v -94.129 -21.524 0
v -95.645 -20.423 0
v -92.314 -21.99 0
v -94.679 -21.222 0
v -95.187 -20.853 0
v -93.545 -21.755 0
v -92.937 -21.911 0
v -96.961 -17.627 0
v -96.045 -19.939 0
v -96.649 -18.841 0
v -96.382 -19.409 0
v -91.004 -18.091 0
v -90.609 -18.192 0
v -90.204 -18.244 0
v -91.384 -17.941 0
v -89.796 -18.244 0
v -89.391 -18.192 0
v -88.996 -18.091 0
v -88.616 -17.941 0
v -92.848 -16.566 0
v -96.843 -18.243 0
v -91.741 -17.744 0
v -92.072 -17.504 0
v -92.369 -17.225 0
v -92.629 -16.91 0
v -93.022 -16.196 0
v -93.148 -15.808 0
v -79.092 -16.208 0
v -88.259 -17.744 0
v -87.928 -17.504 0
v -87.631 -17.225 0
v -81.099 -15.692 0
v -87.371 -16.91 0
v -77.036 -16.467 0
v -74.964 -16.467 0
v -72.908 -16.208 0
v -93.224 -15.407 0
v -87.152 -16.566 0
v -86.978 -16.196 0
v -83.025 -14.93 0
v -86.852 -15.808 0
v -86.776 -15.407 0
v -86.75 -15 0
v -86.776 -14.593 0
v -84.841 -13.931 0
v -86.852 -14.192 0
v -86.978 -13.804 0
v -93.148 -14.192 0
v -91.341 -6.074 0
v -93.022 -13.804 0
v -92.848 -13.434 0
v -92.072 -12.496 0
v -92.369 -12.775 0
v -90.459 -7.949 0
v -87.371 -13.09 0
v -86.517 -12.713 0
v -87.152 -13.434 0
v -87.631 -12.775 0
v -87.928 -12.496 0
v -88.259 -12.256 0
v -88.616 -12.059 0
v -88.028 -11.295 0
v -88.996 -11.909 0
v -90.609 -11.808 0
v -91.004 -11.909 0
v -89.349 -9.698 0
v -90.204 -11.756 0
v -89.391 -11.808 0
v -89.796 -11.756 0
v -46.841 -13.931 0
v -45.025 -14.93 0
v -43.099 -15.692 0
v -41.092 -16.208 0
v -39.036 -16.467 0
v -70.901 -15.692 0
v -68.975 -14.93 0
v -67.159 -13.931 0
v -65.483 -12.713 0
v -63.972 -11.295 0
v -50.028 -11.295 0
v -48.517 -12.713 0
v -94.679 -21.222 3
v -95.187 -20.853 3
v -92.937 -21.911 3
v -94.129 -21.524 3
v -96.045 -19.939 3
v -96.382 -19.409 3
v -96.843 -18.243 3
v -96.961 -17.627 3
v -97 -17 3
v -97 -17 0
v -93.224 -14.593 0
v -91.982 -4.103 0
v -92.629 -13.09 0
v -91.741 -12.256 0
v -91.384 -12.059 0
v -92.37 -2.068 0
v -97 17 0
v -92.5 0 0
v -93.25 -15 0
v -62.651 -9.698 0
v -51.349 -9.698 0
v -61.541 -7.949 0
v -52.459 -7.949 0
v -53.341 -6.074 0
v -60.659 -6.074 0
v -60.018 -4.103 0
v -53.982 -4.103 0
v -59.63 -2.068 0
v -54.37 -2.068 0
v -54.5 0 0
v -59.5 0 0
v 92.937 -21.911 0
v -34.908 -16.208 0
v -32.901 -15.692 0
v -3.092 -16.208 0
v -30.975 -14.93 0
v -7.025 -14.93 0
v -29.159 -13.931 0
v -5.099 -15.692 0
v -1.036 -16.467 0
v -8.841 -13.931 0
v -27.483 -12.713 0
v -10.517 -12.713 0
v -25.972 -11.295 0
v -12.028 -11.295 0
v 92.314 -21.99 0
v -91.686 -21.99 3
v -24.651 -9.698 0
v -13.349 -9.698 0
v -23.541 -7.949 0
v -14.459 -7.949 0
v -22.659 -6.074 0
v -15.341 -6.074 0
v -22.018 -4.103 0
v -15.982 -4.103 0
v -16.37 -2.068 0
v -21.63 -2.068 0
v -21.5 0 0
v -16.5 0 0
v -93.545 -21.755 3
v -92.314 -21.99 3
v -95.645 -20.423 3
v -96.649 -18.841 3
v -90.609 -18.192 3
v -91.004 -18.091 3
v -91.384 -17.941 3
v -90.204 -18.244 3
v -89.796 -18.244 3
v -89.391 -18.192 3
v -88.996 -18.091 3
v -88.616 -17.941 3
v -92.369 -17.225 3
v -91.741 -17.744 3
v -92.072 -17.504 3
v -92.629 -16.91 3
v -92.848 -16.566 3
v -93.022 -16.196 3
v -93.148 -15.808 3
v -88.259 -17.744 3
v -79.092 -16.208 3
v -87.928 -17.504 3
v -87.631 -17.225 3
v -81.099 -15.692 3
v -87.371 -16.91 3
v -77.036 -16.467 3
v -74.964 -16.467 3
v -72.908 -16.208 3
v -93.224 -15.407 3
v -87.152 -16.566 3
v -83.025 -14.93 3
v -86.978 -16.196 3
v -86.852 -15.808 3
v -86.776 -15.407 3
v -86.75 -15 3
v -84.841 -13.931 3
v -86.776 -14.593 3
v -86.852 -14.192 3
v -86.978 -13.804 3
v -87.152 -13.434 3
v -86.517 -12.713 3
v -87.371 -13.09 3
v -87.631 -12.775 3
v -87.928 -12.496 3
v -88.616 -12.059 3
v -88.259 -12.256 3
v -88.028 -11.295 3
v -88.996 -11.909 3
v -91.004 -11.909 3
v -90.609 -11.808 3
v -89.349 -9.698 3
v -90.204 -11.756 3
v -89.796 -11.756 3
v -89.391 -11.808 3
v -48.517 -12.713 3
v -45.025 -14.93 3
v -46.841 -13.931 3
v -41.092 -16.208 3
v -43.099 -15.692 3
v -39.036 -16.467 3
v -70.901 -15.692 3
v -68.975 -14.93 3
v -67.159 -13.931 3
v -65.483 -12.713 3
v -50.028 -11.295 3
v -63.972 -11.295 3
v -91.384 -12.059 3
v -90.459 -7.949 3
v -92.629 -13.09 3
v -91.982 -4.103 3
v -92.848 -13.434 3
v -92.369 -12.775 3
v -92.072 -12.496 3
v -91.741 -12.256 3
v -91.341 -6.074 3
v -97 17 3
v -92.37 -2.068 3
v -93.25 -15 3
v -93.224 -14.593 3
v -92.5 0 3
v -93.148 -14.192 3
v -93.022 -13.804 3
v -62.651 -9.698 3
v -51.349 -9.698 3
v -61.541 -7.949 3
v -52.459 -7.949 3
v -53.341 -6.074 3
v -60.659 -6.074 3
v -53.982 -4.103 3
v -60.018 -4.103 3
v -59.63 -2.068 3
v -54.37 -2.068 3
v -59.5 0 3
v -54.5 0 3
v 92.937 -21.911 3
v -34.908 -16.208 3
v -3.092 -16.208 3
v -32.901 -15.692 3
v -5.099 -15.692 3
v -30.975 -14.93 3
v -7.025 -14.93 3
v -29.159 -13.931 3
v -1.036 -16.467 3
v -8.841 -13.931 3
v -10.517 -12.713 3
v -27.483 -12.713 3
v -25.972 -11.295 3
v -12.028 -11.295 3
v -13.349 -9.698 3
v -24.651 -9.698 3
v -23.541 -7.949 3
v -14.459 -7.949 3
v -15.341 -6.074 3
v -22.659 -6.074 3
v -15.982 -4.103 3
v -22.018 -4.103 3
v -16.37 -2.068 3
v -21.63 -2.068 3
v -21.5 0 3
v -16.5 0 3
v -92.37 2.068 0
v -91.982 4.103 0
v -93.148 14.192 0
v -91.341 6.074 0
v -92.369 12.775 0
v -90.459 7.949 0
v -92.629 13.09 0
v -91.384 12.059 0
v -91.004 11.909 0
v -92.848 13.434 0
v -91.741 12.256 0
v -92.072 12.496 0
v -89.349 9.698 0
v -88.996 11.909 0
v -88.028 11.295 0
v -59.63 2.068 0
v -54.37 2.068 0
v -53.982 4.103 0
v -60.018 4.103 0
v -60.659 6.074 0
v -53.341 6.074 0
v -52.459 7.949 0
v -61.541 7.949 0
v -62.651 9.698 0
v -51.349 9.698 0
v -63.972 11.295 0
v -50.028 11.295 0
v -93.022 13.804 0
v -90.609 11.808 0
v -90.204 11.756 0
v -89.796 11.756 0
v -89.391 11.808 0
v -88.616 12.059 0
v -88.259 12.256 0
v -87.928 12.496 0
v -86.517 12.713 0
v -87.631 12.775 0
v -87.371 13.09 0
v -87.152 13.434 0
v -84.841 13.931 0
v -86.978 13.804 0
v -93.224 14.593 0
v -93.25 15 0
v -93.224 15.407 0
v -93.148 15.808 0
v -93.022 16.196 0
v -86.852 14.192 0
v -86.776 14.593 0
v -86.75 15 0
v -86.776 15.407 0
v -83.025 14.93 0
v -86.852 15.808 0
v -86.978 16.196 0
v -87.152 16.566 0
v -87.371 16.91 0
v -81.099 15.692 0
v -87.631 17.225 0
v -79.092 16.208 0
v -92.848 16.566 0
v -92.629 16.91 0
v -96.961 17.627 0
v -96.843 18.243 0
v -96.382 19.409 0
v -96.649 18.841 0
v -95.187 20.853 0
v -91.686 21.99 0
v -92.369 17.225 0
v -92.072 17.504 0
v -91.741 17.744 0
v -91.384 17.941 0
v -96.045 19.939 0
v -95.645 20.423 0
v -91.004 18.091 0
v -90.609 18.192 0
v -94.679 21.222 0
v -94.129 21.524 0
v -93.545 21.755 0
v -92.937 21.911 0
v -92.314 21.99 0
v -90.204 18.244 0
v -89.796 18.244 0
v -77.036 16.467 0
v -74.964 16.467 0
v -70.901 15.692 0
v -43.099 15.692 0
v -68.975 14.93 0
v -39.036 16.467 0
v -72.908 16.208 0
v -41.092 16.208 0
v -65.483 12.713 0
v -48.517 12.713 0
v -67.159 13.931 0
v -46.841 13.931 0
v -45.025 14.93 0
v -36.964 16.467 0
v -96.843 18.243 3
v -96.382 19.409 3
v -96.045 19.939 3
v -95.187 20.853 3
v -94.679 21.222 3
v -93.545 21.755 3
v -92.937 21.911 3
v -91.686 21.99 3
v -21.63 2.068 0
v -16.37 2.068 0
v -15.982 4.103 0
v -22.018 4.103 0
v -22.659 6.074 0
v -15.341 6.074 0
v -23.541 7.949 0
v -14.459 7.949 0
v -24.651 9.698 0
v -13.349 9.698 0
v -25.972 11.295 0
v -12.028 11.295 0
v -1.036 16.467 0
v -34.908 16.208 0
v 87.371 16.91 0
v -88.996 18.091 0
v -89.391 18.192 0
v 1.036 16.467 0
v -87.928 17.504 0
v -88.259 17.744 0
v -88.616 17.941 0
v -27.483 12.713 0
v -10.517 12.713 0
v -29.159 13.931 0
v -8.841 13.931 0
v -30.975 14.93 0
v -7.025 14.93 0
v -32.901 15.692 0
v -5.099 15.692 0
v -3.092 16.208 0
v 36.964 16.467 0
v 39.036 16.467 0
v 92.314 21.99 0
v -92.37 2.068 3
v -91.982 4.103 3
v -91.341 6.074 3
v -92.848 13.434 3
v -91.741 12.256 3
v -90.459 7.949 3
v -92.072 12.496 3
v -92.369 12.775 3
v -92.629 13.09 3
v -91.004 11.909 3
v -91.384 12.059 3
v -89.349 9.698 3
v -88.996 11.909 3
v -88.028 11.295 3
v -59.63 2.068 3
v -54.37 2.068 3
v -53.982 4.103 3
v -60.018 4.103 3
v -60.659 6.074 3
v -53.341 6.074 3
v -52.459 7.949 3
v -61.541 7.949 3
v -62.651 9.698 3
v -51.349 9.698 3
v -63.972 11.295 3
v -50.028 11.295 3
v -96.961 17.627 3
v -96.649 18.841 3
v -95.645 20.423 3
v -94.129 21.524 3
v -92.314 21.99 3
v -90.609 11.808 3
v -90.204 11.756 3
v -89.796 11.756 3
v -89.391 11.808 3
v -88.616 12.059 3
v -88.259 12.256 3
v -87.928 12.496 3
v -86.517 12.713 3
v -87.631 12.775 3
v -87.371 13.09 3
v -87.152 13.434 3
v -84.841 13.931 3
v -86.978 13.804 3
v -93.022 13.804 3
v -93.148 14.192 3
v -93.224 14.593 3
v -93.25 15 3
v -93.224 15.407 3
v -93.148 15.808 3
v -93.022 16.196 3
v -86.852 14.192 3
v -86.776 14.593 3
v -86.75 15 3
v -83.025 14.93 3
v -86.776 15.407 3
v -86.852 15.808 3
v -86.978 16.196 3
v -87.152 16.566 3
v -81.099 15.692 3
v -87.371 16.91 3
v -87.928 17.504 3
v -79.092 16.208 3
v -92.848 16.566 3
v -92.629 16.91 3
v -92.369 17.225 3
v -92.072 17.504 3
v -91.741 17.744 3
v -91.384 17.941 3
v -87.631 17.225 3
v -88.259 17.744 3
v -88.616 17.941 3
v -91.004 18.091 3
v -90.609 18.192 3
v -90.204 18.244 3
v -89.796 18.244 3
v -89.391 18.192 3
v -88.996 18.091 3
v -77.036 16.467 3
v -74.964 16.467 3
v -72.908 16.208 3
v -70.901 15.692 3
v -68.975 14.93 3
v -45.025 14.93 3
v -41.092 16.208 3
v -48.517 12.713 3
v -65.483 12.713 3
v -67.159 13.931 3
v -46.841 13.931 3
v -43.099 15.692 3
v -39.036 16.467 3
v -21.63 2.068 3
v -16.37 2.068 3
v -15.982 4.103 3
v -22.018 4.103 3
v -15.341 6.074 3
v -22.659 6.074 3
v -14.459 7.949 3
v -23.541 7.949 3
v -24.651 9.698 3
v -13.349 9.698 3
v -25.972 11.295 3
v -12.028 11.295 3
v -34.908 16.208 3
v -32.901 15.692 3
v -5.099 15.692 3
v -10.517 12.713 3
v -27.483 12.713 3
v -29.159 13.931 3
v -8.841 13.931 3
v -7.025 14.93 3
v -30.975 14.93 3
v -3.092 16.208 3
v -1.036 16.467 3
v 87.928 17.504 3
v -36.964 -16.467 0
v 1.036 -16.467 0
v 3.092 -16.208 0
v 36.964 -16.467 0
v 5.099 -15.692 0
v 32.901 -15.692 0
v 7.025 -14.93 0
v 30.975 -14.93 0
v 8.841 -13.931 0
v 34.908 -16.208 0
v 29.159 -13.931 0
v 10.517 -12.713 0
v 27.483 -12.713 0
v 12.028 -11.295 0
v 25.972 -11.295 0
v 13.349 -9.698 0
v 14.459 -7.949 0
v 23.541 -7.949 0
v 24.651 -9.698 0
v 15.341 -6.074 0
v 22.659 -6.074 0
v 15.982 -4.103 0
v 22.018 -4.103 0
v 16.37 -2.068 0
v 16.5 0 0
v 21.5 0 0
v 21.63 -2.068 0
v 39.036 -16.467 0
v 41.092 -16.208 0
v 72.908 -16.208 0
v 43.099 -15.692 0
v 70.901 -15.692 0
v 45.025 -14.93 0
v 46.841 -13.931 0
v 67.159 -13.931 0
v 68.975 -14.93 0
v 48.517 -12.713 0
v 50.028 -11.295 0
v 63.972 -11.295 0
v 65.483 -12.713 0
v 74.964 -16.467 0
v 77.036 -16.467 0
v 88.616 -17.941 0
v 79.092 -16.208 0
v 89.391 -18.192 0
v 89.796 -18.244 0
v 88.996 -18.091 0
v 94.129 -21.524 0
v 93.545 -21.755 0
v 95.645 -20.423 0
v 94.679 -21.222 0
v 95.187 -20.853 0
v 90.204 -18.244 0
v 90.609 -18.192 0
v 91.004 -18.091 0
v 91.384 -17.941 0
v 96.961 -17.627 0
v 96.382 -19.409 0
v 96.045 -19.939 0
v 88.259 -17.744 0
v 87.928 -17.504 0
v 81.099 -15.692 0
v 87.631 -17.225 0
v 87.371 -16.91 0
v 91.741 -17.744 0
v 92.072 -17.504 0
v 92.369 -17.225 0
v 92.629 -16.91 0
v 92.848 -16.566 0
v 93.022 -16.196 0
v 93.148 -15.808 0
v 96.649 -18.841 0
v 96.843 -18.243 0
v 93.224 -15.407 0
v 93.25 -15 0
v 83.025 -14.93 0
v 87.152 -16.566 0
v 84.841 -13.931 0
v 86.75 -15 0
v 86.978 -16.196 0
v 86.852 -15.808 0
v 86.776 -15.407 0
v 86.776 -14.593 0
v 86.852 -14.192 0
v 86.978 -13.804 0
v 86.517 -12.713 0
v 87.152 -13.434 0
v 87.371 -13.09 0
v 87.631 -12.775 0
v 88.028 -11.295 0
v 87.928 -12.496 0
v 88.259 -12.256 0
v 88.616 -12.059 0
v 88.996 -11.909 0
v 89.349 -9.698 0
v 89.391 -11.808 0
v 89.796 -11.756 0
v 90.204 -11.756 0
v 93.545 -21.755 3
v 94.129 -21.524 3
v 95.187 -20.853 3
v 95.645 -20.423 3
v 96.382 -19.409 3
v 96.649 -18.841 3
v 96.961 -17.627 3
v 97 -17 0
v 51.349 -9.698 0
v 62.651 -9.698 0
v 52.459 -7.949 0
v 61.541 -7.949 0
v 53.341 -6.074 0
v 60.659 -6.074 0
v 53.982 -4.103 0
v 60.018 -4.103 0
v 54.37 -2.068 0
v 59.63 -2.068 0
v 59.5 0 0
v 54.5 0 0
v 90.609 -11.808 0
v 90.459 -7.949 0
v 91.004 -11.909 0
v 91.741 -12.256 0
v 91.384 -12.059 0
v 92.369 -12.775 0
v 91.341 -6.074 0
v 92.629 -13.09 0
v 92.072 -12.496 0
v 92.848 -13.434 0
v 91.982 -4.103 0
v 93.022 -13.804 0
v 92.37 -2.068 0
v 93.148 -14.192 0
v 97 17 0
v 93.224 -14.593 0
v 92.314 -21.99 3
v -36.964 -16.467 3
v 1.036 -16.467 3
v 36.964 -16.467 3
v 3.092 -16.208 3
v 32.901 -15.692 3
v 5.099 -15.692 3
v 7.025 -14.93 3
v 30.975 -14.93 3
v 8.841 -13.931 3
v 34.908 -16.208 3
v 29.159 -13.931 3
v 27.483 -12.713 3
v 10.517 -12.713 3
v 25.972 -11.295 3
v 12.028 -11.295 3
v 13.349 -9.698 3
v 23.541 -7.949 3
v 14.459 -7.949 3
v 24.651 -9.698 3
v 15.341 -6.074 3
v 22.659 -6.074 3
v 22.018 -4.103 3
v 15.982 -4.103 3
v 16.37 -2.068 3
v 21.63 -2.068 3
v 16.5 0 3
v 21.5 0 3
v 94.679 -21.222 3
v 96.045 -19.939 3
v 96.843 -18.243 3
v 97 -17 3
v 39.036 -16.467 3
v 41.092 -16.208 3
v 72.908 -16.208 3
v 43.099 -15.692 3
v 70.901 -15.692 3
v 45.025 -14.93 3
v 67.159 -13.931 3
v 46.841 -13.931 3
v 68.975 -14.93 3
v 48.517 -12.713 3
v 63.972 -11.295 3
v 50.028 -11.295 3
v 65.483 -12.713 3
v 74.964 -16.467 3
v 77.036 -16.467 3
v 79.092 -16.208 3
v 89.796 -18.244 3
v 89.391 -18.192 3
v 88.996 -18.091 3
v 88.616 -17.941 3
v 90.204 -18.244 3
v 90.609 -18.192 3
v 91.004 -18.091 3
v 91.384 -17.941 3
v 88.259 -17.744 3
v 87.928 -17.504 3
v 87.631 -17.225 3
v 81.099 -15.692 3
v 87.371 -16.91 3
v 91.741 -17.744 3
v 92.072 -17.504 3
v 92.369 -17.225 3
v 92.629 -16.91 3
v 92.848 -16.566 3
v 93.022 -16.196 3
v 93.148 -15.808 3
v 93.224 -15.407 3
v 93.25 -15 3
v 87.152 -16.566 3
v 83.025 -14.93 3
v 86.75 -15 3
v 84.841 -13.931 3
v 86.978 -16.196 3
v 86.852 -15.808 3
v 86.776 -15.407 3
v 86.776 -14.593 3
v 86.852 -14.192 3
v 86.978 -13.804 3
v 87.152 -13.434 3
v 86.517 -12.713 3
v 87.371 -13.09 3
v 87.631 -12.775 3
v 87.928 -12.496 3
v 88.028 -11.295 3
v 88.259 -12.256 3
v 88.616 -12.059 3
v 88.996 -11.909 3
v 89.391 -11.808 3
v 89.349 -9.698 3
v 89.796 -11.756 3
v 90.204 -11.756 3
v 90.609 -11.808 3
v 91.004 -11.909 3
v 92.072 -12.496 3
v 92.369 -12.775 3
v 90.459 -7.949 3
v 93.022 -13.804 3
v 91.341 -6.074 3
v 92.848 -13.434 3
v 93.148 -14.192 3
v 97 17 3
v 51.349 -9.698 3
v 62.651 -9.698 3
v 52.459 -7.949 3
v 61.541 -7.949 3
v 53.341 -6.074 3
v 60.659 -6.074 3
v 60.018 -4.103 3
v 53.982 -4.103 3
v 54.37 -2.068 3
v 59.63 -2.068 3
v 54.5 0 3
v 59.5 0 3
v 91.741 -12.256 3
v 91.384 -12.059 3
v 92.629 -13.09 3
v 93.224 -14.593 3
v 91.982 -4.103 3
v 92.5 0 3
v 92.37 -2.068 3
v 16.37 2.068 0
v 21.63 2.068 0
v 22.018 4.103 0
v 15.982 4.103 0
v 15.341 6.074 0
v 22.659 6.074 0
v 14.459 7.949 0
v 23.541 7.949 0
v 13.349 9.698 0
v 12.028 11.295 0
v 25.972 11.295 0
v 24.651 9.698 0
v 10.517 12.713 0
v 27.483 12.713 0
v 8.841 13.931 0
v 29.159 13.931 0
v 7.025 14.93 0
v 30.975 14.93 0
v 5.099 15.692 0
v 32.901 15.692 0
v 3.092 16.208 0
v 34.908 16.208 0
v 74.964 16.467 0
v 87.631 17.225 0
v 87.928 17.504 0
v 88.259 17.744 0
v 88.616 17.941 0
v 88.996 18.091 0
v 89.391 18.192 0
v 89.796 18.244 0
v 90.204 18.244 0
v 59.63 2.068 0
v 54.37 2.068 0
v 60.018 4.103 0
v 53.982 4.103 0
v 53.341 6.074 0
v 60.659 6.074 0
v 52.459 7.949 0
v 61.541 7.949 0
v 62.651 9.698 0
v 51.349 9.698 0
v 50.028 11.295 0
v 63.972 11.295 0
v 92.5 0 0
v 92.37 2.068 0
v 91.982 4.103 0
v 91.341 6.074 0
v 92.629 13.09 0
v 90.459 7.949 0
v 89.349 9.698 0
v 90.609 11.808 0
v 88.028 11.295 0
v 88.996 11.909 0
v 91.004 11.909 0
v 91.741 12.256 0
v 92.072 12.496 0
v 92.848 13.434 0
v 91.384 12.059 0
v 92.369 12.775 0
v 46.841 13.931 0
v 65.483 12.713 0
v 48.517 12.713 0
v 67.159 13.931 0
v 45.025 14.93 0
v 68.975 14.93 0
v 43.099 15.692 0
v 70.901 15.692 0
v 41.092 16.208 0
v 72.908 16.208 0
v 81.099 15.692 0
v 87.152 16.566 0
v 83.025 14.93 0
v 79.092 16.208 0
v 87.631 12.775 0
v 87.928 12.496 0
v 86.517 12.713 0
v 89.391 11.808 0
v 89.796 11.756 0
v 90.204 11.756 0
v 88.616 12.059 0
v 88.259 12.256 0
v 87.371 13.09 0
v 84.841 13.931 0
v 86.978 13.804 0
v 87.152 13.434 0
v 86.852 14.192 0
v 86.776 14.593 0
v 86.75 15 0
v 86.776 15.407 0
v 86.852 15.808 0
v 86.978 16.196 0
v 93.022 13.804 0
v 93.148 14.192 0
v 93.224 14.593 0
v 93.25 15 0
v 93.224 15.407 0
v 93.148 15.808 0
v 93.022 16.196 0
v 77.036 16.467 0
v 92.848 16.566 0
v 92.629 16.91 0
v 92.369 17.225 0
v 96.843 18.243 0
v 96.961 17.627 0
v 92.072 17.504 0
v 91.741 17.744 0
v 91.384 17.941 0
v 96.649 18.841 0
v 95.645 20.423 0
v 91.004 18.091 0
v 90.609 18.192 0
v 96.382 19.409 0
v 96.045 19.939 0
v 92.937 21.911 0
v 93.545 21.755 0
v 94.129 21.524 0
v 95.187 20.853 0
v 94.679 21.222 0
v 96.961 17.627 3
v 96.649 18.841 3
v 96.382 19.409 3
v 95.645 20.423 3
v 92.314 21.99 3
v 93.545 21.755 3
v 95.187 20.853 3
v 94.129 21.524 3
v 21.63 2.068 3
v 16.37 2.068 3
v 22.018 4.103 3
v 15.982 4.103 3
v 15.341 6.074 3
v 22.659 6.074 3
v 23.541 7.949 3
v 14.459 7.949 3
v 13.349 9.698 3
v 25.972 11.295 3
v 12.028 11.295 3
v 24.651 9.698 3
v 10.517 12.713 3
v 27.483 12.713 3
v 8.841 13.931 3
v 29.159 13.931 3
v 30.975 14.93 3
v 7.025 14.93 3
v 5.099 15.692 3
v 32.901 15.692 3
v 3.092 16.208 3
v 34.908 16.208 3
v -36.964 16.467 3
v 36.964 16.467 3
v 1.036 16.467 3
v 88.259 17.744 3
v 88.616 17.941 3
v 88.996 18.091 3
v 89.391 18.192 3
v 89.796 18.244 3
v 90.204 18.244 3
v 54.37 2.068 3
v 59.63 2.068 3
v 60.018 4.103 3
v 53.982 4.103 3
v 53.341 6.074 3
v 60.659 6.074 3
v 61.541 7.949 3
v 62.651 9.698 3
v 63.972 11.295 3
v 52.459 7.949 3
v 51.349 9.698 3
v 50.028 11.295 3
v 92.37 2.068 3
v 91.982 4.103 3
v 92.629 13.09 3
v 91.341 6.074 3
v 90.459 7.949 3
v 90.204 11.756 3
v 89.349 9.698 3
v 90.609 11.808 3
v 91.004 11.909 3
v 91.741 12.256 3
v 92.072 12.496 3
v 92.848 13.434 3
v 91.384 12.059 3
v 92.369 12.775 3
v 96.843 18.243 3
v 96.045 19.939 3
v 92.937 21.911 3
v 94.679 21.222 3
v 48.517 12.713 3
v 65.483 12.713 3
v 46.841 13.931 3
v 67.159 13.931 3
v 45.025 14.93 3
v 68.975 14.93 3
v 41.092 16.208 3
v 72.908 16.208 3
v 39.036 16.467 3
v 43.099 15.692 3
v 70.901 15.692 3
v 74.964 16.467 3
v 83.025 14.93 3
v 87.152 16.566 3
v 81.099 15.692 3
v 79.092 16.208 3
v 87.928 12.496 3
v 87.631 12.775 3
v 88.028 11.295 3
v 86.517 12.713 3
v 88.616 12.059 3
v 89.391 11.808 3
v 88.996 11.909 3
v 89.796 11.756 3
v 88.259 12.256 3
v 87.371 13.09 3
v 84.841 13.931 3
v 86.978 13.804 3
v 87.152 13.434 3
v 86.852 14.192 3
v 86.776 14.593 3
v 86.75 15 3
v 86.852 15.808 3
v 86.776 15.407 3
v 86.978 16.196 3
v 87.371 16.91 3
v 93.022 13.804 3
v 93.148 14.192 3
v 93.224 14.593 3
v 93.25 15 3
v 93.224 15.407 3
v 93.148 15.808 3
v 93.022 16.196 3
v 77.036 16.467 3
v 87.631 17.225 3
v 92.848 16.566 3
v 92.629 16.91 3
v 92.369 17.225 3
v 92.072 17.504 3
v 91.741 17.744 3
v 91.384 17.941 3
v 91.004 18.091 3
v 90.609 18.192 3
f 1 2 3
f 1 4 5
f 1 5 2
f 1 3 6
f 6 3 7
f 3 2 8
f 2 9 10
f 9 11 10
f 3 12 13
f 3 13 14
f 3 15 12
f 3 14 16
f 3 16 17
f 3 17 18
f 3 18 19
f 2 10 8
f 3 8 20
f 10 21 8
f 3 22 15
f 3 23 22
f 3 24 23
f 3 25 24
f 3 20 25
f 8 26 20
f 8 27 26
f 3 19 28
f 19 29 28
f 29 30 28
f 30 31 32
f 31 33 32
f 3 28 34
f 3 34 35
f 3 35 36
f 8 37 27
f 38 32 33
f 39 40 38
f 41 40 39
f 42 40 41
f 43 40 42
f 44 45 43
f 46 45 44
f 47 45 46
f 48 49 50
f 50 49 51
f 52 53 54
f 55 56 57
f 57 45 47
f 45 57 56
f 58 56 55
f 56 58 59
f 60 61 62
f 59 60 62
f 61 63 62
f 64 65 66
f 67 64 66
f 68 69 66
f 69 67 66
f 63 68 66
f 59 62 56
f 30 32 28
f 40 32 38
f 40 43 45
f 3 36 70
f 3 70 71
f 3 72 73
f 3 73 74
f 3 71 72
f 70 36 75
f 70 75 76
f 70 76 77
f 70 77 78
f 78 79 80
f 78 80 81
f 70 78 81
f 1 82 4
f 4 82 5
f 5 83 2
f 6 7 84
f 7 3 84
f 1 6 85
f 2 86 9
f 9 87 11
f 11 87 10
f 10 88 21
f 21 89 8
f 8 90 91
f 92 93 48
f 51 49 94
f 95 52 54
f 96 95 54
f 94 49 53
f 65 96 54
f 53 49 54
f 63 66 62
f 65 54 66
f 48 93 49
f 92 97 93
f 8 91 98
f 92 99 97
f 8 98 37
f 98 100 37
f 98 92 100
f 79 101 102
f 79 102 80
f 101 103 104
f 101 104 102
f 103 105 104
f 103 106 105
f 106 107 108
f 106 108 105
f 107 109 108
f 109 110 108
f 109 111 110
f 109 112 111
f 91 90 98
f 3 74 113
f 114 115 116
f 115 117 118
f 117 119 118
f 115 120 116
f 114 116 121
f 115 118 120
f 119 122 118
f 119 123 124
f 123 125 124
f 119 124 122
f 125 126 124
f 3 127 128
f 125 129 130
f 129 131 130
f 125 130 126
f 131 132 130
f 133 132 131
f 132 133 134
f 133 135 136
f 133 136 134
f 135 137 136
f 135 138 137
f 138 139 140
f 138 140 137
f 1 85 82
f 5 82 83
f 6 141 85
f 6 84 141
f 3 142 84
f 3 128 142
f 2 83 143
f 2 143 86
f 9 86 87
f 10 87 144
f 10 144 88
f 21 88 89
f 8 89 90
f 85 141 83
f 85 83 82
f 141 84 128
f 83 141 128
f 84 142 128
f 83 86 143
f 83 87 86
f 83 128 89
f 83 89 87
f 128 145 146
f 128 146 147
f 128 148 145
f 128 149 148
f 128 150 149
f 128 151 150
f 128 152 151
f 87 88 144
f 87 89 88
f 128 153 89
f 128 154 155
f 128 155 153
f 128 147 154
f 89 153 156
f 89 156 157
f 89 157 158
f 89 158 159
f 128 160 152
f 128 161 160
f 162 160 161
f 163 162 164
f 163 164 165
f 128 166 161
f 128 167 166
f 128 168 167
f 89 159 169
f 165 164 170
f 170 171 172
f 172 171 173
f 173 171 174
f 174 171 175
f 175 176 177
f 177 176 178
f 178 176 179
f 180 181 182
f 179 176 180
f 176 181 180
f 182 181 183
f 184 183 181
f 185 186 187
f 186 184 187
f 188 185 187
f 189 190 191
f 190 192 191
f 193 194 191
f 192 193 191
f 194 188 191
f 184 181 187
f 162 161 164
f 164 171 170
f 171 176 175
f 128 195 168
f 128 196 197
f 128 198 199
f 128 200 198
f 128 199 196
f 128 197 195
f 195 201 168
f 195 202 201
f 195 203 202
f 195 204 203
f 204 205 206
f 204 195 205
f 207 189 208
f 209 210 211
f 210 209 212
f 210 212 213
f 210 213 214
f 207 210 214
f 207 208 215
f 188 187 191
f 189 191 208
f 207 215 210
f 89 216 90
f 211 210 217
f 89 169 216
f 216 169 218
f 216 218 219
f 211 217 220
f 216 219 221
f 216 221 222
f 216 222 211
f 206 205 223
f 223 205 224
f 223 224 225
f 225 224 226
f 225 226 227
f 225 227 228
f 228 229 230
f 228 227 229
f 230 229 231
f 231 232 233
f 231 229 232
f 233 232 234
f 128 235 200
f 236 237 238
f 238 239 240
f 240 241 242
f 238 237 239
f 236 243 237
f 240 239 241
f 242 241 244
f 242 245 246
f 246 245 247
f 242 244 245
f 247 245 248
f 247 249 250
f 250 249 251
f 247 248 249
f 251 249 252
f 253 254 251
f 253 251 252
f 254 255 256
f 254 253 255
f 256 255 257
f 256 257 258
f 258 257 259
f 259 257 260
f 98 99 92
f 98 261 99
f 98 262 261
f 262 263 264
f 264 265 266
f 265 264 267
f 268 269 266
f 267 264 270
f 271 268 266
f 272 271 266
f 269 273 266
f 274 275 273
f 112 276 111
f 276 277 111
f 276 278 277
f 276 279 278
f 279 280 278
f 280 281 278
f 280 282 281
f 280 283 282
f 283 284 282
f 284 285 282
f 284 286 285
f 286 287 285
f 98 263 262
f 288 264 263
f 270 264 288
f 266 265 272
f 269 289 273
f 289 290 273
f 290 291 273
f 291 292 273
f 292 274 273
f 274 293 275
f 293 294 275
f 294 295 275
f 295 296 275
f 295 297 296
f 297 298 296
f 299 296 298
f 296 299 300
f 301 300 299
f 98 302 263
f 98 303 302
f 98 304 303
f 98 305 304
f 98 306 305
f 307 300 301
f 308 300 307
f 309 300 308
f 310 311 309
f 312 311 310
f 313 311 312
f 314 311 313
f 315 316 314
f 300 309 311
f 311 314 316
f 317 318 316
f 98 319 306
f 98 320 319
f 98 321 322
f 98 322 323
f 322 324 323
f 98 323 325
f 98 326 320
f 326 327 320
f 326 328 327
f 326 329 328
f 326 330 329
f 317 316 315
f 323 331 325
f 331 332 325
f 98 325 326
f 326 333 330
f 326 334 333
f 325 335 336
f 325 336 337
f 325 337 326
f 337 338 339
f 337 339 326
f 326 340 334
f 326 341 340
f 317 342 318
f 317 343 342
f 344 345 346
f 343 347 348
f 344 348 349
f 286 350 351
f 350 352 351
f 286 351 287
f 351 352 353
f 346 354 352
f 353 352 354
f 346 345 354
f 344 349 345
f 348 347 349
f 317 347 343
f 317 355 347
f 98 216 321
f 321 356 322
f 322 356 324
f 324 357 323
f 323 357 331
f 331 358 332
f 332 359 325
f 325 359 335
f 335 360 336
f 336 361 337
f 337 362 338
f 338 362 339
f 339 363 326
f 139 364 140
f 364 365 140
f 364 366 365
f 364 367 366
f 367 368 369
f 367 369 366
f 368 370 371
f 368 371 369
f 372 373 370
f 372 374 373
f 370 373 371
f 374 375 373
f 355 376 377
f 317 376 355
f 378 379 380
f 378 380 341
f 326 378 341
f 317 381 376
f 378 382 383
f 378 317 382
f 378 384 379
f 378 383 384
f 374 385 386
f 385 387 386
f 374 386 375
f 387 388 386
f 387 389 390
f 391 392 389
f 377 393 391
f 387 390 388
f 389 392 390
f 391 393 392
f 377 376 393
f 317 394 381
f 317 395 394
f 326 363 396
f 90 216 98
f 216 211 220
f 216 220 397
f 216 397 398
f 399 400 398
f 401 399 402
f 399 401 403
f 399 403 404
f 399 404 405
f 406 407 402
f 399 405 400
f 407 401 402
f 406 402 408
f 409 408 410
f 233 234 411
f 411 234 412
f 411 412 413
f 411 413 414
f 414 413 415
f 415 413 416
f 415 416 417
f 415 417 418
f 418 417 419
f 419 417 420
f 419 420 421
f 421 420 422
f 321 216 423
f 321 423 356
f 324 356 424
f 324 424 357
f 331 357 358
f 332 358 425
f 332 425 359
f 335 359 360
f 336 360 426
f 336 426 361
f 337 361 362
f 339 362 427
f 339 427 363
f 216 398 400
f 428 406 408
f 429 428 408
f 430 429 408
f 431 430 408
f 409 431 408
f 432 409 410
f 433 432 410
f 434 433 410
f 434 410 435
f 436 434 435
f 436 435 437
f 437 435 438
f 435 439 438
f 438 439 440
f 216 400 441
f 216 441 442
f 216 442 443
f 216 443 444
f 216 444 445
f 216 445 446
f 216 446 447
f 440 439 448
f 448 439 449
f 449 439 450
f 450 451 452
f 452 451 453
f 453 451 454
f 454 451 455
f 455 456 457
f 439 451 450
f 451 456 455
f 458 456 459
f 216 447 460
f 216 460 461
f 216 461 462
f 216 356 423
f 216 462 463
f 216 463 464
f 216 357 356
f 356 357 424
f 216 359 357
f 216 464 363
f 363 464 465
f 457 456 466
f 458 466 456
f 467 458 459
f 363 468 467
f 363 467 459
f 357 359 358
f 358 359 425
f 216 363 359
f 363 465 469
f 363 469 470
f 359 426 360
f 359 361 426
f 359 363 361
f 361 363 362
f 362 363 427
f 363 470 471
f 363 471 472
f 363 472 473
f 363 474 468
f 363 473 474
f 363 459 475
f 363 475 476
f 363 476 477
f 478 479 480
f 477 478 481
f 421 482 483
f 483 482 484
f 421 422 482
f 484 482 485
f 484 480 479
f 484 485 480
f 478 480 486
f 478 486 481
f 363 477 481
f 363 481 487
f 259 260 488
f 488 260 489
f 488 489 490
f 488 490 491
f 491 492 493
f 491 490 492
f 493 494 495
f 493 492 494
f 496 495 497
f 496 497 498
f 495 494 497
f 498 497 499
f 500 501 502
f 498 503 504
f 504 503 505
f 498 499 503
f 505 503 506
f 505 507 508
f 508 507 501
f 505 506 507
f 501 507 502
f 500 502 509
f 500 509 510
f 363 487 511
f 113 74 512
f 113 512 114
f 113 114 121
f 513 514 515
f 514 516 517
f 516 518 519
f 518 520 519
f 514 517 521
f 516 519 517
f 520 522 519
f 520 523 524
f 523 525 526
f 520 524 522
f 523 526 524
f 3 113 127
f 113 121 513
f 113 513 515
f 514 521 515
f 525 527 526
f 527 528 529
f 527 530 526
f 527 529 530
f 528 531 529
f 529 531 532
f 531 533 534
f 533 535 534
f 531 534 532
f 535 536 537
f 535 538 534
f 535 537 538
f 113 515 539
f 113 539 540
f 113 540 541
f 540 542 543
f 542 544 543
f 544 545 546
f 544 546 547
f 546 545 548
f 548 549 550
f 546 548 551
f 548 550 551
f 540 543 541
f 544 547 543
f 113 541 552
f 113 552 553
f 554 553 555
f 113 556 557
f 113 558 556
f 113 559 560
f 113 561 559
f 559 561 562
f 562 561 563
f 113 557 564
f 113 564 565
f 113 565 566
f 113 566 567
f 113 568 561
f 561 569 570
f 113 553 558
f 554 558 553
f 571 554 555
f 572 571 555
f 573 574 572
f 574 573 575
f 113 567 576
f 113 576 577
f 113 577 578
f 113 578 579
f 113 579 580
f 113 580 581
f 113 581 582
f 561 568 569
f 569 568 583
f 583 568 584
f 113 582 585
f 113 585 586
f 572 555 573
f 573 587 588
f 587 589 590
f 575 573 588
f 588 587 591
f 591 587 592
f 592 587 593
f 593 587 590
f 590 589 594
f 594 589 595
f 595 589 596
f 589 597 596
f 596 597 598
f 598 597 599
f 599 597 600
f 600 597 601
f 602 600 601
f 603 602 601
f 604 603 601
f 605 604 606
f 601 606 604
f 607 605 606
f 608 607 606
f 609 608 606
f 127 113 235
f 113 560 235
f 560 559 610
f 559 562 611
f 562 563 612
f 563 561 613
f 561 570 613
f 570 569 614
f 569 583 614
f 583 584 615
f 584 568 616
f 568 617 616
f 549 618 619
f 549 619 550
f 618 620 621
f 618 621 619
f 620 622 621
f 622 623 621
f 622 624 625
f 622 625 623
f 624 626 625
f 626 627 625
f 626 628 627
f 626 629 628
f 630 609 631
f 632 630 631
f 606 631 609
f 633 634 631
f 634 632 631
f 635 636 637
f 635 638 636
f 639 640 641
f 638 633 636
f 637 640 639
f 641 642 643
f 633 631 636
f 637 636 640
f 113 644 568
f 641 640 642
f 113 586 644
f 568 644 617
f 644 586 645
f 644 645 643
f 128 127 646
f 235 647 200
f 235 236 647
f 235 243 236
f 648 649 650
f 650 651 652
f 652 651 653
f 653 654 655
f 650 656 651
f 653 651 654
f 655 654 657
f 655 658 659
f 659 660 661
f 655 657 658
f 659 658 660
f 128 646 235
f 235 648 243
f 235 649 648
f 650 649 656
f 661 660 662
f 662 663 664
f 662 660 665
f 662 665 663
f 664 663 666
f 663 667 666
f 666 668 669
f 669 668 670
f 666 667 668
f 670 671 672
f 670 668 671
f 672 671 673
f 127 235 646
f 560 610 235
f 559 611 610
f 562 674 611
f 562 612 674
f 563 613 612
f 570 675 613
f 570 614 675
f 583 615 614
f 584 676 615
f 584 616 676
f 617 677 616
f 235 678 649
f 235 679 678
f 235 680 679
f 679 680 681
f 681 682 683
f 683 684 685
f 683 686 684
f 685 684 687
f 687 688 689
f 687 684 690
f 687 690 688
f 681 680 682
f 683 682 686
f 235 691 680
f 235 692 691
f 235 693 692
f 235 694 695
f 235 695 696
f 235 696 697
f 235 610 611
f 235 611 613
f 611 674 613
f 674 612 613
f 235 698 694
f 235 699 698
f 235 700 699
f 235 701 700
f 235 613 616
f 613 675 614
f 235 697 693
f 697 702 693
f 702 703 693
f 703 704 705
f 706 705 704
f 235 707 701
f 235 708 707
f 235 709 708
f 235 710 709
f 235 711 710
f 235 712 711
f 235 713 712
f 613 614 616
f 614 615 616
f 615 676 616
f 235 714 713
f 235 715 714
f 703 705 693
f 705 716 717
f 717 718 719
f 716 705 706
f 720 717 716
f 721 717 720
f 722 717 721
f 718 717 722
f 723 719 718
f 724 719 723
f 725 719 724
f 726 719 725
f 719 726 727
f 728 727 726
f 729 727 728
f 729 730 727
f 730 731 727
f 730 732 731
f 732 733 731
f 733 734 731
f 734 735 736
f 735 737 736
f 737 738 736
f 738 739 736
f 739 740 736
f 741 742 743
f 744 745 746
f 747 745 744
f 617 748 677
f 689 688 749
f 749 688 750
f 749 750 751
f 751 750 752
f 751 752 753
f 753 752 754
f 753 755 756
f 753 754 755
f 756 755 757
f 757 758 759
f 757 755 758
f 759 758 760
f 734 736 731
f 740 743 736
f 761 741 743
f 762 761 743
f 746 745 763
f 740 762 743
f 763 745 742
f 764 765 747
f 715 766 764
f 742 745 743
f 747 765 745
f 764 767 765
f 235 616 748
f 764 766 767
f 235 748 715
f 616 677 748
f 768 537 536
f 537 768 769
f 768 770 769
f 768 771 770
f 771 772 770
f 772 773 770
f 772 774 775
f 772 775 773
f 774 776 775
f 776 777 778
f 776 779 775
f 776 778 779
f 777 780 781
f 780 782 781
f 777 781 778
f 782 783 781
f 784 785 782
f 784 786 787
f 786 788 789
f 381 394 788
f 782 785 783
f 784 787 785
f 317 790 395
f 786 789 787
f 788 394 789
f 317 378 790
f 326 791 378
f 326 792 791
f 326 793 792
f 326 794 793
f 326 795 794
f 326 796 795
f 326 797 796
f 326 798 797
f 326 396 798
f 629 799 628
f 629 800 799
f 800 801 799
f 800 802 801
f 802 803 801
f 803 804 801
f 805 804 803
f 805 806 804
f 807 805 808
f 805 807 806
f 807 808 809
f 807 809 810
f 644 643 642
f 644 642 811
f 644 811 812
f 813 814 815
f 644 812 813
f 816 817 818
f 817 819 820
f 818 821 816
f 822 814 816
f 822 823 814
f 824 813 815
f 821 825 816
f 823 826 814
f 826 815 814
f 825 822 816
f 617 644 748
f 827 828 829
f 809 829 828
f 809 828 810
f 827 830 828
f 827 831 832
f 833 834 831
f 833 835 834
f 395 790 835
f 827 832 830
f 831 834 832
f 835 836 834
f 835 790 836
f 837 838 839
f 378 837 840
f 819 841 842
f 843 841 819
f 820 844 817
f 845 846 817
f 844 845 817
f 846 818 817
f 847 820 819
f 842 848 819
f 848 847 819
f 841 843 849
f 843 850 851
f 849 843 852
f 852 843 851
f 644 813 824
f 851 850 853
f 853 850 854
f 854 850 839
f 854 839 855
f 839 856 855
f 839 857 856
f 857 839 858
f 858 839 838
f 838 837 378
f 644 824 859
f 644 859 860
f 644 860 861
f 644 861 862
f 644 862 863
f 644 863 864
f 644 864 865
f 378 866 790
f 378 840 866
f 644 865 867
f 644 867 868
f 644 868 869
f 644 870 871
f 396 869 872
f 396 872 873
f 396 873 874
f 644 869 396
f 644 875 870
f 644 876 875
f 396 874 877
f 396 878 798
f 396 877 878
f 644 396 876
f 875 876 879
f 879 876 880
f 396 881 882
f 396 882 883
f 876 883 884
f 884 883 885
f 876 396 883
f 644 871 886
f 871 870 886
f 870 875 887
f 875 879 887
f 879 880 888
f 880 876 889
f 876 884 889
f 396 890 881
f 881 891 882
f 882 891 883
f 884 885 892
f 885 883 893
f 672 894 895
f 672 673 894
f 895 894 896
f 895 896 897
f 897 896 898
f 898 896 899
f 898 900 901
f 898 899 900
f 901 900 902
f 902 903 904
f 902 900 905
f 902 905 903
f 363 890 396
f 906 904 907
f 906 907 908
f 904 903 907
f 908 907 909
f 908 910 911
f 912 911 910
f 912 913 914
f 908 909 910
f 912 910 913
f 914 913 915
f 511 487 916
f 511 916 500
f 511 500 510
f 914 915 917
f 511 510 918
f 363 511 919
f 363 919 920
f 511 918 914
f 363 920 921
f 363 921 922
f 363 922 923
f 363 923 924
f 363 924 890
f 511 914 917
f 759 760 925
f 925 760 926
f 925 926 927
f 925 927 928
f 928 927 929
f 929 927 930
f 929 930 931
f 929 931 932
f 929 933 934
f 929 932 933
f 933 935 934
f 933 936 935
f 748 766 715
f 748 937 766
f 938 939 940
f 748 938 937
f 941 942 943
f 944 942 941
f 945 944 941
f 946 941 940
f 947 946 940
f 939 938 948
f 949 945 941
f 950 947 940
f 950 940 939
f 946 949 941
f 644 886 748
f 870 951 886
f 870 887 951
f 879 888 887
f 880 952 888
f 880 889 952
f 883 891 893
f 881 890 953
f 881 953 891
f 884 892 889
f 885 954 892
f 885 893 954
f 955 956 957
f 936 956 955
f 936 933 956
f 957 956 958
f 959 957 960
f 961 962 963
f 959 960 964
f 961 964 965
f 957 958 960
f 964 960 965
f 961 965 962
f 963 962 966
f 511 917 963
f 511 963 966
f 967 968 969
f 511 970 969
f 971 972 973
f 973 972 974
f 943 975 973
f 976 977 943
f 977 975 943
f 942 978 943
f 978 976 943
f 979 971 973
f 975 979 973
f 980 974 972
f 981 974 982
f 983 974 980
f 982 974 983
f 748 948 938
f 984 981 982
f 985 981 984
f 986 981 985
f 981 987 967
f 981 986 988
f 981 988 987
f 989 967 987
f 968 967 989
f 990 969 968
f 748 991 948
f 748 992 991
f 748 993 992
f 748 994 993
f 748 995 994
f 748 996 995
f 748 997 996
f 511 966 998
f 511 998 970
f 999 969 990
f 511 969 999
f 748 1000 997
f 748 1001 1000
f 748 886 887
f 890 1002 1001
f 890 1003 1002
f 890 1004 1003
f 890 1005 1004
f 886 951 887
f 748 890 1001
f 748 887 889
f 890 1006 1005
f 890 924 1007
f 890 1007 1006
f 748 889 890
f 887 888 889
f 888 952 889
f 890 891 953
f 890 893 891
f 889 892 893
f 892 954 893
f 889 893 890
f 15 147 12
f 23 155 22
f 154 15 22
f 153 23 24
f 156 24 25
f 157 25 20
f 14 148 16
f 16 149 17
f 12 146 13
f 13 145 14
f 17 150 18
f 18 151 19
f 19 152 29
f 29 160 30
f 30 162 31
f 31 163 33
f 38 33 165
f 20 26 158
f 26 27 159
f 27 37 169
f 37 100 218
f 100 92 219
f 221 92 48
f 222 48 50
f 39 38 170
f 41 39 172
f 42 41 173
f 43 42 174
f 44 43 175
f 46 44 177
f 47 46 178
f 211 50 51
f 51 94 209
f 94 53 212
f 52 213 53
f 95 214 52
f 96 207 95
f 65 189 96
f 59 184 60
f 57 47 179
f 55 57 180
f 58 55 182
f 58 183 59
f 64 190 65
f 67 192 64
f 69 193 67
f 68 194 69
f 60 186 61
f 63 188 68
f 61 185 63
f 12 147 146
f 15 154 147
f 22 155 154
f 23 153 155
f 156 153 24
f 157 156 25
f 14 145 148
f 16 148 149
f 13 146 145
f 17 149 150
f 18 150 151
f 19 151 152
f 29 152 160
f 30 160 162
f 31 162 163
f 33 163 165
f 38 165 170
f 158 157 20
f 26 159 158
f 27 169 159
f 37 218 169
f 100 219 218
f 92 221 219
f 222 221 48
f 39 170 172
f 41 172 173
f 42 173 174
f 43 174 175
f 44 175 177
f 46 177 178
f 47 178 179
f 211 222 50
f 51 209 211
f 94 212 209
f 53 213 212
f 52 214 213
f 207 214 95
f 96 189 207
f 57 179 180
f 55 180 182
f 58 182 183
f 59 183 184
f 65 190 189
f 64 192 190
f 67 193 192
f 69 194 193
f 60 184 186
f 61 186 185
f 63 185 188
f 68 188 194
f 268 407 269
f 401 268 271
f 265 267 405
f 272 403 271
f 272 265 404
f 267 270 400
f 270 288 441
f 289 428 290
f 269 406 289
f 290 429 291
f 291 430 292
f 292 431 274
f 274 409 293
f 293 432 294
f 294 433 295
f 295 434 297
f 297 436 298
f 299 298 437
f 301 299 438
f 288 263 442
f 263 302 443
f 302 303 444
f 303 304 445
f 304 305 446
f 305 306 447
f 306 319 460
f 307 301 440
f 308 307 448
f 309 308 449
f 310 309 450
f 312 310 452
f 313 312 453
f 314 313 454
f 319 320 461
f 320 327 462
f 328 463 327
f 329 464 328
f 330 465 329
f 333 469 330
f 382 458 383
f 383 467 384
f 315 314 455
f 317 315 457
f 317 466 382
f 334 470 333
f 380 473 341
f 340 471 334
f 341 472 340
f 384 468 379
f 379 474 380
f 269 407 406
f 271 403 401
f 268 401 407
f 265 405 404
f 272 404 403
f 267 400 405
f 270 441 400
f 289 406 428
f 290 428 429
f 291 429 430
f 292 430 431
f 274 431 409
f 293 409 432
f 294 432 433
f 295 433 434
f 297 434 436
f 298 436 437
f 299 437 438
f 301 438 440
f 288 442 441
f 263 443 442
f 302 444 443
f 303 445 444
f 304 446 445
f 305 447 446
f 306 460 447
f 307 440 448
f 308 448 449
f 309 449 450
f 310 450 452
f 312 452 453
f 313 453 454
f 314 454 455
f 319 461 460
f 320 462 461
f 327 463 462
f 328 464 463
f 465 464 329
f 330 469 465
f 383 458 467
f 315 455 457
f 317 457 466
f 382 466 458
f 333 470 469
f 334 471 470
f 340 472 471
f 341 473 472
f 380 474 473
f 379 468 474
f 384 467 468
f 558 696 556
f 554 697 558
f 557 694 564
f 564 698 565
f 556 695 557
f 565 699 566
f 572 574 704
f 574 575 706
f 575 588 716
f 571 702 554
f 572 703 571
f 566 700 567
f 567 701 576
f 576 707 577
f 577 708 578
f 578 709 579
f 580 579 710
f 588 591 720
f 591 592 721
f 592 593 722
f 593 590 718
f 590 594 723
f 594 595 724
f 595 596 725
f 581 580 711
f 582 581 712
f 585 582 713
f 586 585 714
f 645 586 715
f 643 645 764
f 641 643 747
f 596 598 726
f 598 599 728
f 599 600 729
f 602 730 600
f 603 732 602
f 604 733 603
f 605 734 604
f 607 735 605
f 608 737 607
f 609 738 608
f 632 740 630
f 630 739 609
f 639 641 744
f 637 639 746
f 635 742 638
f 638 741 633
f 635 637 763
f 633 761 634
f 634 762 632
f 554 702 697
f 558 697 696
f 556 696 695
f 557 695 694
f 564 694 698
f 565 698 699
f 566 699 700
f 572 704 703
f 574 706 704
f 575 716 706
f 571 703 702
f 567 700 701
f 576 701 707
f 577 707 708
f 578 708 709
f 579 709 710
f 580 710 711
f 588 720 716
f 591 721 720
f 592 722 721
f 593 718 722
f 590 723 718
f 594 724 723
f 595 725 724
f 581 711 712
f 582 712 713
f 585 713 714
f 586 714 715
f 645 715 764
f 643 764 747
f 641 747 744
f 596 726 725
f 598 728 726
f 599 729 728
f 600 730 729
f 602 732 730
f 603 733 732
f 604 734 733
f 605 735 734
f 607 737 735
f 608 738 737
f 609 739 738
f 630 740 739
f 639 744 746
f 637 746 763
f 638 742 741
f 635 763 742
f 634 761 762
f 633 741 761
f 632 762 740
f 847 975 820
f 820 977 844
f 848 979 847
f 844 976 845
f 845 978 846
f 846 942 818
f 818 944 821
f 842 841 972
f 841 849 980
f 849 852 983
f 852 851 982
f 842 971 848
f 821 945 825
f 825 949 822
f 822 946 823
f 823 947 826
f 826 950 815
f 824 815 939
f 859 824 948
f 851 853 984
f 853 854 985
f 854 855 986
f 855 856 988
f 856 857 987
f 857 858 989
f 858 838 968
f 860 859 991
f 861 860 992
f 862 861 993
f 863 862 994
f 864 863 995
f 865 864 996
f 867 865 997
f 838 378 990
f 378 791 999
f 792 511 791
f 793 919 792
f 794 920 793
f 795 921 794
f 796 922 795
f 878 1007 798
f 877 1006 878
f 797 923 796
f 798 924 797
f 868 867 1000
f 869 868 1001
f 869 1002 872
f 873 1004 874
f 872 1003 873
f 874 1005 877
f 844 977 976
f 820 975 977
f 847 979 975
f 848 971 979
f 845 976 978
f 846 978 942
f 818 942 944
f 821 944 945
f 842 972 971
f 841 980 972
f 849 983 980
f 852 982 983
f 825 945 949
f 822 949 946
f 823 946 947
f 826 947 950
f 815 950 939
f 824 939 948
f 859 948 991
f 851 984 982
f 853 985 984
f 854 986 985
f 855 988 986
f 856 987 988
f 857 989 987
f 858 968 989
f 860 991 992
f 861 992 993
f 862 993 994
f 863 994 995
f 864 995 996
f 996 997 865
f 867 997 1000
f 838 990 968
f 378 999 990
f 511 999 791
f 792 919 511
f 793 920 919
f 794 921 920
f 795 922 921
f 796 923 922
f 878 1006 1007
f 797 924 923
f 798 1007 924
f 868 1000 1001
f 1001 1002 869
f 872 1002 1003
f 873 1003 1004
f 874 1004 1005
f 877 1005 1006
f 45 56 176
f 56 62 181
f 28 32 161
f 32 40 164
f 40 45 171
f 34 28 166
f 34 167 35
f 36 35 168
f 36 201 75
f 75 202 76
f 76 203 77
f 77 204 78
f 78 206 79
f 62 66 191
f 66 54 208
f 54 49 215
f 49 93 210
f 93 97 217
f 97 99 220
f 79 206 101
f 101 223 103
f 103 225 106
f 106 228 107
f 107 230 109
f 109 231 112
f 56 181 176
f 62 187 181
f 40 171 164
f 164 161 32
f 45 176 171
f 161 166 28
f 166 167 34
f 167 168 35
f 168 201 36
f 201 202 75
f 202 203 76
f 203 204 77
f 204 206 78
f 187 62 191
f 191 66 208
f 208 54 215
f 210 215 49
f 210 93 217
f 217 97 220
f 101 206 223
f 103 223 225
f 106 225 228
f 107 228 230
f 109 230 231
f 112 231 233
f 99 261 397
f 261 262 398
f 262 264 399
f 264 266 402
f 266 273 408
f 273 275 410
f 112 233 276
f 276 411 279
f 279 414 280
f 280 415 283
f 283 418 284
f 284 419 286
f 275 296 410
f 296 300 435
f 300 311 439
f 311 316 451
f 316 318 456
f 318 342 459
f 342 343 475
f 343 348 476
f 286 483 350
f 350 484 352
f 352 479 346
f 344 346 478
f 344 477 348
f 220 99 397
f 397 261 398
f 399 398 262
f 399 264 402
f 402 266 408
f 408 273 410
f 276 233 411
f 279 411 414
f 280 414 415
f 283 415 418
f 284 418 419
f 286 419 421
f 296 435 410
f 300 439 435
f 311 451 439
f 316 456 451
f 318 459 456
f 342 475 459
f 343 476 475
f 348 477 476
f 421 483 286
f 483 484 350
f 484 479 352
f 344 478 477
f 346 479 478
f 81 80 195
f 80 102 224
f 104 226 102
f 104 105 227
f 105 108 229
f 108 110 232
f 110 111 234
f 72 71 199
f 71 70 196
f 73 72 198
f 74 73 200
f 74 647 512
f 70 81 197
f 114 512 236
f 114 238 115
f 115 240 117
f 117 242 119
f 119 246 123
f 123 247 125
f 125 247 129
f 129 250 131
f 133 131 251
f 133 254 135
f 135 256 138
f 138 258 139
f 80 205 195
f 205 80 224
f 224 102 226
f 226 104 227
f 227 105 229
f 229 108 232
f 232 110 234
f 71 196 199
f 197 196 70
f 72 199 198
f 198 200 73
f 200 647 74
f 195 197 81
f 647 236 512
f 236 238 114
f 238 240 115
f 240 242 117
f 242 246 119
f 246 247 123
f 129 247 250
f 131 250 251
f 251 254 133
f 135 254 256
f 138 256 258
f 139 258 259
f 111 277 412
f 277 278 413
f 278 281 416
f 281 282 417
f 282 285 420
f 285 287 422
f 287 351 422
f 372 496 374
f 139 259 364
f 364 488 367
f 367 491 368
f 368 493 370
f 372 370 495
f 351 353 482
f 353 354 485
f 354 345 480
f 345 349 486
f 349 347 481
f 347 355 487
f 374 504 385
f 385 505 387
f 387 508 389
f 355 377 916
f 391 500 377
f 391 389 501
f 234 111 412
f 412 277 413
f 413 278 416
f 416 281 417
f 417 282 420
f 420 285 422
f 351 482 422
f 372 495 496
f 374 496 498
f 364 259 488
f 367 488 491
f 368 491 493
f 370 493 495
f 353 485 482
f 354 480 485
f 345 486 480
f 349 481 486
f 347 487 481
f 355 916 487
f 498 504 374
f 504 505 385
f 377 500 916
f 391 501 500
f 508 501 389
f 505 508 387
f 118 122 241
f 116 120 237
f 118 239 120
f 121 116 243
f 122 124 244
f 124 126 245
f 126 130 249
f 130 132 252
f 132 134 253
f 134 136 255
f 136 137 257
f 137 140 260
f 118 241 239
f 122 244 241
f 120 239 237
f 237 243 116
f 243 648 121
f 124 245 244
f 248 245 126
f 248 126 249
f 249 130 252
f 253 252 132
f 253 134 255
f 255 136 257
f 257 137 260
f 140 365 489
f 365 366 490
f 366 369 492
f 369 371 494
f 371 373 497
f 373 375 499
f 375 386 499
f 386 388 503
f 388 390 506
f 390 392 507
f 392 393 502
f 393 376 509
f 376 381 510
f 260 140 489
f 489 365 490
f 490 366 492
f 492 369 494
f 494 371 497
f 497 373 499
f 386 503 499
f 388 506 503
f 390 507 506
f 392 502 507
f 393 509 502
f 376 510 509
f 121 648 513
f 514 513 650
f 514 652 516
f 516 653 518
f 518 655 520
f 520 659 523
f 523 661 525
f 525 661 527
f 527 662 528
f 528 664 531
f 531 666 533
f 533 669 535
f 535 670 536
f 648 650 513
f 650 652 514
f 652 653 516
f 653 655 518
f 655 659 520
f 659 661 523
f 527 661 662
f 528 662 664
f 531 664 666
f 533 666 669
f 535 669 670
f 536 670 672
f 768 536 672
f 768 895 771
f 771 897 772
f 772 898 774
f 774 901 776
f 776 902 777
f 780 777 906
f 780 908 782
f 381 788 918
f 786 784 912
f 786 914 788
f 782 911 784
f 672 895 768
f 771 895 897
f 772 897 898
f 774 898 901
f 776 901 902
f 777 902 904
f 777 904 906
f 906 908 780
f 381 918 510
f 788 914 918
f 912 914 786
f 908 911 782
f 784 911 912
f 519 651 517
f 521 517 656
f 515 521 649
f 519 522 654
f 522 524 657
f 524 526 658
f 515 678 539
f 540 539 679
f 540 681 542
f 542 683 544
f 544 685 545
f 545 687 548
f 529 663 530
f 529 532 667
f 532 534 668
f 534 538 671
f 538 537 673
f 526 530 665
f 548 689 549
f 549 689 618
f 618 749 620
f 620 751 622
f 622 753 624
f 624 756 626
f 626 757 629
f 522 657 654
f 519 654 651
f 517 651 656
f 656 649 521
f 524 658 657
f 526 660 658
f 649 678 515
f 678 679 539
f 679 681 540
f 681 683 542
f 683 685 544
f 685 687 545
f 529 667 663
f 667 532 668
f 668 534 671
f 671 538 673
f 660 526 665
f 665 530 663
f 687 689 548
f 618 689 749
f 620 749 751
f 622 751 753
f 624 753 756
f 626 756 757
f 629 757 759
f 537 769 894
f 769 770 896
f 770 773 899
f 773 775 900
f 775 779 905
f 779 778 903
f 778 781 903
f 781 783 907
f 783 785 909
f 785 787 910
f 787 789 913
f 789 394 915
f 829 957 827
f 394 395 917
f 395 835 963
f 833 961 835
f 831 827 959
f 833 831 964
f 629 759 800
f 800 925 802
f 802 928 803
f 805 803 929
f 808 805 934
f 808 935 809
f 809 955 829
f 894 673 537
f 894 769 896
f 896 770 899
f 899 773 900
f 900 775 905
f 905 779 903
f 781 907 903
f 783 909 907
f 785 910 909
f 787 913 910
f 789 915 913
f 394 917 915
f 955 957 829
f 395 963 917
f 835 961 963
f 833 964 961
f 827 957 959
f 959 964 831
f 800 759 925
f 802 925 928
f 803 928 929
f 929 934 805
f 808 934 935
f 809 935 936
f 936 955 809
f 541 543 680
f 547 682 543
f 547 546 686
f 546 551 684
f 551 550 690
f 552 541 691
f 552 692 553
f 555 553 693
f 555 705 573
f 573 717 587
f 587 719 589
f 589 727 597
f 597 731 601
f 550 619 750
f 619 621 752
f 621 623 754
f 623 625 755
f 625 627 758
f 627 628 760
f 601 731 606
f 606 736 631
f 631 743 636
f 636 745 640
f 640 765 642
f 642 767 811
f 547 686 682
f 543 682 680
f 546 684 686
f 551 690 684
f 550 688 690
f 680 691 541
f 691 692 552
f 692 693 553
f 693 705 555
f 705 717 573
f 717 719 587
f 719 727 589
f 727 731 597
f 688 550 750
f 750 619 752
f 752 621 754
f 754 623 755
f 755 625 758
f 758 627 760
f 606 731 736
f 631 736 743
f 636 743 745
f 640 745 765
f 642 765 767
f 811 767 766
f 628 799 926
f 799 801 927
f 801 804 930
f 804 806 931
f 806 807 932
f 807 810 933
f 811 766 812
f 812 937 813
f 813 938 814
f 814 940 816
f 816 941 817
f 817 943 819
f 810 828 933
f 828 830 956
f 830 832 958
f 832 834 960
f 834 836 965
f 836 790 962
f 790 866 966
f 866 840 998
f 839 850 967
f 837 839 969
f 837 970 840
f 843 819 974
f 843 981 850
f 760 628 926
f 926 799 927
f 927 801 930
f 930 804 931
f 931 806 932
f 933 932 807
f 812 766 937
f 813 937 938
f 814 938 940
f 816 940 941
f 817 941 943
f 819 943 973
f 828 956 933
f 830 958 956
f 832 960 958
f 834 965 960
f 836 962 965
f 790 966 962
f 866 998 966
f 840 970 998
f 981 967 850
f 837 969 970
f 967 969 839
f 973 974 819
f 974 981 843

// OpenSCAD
$fn = 50;

difference() {
	union() {
		hull() {
			translate(v = [-92.0, 17.0, 0]) {
				cylinder(h = 3, r = 5);
			}
			translate(v = [92.0, 17.0, 0]) {
				cylinder(h = 3, r = 5);
			}
			translate(v = [-92.0, -17.0, 0]) {
				cylinder(h = 3, r = 5);
			}
			translate(v = [92.0, -17.0, 0]) {
				cylinder(h = 3, r = 5);
			}
		}
	}
	union() {
		translate(v = [-90.0, -15.0, -100.0]) {
			cylinder(h = 200, r = 3.25);
		}
		translate(v = [-90.0, 15.0, -100.0]) {
			cylinder(h = 200, r = 3.25);
		}
		translate(v = [90.0, -15.0, -100.0]) {
			cylinder(h = 200, r = 3.25);
		}
		translate(v = [90.0, 15.0, -100.0]) {
			cylinder(h = 200, r = 3.25);
		}
		translate(v = [-90.0, -15.0, -100.0]) {
			cylinder(h = 200, r = 1.8);
		}
		translate(v = [-90.0, 15.0, -100.0]) {
			cylinder(h = 200, r = 1.8);
		}
		translate(v = [90.0, -15.0, -100.0]) {
			cylinder(h = 200, r = 1.8);
		}
		translate(v = [90.0, 15.0, -100.0]) {
			cylinder(h = 200, r = 1.8);
		}
		translate(v = [-76.0, 0, 0.0]) {
			cylinder(h = 3, r = 16.5);
		}
		translate(v = [-38.0, 0, 0.0]) {
			cylinder(h = 3, r = 16.5);
		}
		cylinder(h = 3, r = 16.5);
		translate(v = [38.0, 0, 0.0]) {
			cylinder(h = 3, r = 16.5);
		}
		translate(v = [76.0, 0, 0.0]) {
			cylinder(h = 3, r = 16.5);
		}
	}
}
